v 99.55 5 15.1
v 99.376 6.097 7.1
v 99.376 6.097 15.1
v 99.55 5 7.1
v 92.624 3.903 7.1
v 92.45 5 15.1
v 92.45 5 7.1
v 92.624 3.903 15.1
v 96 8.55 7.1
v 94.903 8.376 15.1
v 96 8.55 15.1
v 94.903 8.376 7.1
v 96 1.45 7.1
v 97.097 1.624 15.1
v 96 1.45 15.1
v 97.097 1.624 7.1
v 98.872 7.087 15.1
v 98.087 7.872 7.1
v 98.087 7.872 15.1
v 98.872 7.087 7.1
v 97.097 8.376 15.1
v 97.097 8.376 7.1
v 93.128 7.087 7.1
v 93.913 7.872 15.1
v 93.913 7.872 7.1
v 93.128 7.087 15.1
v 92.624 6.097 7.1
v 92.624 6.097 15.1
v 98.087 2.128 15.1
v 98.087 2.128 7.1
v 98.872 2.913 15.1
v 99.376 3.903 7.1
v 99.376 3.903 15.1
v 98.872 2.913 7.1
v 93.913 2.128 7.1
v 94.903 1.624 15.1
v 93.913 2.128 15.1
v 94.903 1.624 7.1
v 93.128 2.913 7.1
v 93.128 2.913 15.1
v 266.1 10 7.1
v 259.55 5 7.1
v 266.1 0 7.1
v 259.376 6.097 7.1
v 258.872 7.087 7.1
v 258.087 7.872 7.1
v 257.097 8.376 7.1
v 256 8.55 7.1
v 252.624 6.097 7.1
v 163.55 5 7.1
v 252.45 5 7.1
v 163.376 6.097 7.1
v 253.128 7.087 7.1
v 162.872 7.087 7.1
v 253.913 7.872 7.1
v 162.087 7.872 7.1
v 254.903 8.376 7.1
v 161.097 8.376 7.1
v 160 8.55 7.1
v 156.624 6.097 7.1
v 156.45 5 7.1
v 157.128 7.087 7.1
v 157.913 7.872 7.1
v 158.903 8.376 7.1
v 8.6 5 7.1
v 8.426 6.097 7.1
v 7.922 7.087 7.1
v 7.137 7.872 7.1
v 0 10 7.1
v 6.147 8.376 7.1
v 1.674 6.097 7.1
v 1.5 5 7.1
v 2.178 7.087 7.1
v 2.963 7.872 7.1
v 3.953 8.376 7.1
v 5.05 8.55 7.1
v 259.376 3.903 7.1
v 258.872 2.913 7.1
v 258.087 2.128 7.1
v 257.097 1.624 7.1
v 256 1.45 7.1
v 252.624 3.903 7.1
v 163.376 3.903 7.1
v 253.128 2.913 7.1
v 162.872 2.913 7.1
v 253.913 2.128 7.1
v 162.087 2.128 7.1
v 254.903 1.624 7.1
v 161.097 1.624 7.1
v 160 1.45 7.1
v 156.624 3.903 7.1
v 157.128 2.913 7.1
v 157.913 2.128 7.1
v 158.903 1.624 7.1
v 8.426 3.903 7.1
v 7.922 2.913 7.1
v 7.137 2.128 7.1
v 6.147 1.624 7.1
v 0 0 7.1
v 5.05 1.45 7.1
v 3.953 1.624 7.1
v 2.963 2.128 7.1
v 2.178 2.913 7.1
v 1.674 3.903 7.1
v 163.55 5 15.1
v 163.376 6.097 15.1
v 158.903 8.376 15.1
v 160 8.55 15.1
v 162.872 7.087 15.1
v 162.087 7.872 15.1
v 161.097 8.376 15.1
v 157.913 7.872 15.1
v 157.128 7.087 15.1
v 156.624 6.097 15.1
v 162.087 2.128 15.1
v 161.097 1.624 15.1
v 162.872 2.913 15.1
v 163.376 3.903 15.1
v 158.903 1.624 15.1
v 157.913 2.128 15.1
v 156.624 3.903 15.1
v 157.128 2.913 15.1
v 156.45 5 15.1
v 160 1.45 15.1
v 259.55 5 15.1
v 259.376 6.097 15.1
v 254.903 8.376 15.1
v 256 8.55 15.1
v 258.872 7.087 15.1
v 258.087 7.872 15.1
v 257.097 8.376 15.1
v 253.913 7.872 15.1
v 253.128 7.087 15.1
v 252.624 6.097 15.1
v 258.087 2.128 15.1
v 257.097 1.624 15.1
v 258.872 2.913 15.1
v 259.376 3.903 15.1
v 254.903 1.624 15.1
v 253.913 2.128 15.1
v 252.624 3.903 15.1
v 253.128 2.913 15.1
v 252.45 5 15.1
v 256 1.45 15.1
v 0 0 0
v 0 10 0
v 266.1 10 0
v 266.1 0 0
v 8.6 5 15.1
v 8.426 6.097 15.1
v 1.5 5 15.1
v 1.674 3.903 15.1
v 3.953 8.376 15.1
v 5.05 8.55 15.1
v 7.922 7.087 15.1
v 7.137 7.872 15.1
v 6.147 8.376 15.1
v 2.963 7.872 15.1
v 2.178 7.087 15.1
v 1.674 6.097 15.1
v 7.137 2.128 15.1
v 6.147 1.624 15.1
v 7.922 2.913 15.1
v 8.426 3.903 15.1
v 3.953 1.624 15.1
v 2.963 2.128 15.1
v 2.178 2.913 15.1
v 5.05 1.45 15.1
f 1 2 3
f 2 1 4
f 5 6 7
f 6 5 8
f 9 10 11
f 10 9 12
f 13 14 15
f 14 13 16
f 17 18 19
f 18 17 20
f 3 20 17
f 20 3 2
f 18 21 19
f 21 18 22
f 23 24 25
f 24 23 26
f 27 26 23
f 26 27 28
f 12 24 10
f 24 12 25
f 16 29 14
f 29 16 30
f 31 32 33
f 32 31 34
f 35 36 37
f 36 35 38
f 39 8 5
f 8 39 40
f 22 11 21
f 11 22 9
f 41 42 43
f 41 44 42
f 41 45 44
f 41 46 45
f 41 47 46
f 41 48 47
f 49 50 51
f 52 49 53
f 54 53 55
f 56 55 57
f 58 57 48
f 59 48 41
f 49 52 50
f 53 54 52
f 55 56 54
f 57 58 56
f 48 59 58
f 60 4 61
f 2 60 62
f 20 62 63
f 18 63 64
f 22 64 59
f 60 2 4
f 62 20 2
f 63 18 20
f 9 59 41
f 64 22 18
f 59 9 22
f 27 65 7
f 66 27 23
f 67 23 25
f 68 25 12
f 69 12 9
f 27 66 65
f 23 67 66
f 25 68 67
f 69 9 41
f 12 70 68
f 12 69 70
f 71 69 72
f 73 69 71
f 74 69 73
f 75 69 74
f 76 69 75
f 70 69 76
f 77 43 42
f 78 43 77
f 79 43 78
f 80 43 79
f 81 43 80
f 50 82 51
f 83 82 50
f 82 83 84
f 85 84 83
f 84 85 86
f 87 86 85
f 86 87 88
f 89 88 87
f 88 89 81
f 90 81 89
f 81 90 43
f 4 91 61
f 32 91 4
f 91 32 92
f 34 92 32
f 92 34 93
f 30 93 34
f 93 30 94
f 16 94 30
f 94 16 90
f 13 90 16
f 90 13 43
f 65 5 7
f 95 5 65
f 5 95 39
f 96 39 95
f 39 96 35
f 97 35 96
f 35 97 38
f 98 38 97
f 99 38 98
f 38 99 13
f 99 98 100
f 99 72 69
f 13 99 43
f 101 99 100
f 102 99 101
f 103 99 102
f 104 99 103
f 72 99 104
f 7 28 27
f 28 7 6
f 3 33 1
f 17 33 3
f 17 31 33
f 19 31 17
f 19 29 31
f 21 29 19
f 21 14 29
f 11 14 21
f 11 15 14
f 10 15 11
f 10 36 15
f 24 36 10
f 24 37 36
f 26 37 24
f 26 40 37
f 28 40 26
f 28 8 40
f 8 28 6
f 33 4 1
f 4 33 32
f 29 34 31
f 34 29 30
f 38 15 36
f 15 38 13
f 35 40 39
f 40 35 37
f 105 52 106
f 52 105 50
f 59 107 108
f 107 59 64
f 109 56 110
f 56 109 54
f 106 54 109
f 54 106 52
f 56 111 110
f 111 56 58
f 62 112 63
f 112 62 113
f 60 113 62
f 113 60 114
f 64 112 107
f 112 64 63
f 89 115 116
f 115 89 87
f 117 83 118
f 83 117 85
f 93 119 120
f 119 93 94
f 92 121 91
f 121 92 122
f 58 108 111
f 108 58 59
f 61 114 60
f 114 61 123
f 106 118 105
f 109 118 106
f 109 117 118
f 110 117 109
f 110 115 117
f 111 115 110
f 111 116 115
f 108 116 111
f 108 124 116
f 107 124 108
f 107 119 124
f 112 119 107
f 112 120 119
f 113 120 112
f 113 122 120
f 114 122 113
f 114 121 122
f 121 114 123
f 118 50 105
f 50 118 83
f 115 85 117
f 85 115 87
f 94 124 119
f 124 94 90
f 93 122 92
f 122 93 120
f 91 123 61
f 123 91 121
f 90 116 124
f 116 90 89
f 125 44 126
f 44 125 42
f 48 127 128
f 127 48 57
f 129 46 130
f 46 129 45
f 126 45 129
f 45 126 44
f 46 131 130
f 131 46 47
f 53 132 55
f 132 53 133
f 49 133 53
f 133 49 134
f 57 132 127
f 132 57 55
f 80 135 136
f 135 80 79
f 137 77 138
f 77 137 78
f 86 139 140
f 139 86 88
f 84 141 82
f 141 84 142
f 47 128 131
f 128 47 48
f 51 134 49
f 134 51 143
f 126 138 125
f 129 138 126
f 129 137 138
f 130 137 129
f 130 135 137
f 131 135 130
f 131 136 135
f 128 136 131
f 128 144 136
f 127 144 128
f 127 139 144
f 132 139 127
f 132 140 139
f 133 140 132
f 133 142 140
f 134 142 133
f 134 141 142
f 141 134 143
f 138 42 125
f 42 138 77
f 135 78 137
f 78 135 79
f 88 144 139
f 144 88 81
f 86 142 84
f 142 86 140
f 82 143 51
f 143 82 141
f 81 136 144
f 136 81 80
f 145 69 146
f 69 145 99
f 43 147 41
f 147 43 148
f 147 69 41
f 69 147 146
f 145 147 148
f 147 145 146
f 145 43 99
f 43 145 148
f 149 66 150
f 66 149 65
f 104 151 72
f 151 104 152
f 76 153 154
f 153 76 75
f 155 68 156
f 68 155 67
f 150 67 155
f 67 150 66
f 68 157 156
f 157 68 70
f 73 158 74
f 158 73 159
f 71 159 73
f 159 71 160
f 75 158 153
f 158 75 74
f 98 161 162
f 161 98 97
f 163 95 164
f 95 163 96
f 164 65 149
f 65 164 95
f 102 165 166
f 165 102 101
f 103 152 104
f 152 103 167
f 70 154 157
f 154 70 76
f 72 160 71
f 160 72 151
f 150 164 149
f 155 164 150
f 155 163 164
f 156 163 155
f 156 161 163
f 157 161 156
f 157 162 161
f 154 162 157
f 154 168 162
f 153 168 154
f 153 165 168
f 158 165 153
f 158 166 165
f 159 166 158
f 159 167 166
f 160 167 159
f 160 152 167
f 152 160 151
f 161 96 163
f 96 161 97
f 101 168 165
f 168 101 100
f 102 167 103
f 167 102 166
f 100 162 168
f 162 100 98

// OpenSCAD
use <MCAD/polyholes.scad>;
// Draw runner

function sumv(v,i,s=0) = (i==s ? v[i] : v[i] + sumv(v,i-1,s));

runner_push_fit_d       =  7.10;
runner_push_fit_h       =  8.00;
runner_insert_x_pitches =  [ 96.0, 64.0, 96.0];

runner_length = sumv(runner_insert_x_pitches, len(runner_insert_x_pitches) - 1, 0) + runner_push_fit_d + 3.00;
runner_width  = 10.00;
runner_height =  7.10;


module hex_nut() {
    n = 6;  // hex nut
    cylinder(h = h, r = r / cos (180 / n), $fn = n);
}

difference() {
    union() {
        cube([runner_length, runner_width, runner_height]);
        translate([runner_push_fit_d / 2.0 + 1.50, runner_width / 2.0, runner_height]) cylinder(r = runner_push_fit_d / 2.0, h = runner_push_fit_h, $fn=20);
        for (x_idx = [0:len(runner_insert_x_pitches) - 1]) {
            translate([sumv(runner_insert_x_pitches, x_idx, 0), runner_width / 2.0, runner_height]) cylinder(r = runner_push_fit_d / 2.0, h = runner_push_fit_h, $fn=20);
        }
    }
}
